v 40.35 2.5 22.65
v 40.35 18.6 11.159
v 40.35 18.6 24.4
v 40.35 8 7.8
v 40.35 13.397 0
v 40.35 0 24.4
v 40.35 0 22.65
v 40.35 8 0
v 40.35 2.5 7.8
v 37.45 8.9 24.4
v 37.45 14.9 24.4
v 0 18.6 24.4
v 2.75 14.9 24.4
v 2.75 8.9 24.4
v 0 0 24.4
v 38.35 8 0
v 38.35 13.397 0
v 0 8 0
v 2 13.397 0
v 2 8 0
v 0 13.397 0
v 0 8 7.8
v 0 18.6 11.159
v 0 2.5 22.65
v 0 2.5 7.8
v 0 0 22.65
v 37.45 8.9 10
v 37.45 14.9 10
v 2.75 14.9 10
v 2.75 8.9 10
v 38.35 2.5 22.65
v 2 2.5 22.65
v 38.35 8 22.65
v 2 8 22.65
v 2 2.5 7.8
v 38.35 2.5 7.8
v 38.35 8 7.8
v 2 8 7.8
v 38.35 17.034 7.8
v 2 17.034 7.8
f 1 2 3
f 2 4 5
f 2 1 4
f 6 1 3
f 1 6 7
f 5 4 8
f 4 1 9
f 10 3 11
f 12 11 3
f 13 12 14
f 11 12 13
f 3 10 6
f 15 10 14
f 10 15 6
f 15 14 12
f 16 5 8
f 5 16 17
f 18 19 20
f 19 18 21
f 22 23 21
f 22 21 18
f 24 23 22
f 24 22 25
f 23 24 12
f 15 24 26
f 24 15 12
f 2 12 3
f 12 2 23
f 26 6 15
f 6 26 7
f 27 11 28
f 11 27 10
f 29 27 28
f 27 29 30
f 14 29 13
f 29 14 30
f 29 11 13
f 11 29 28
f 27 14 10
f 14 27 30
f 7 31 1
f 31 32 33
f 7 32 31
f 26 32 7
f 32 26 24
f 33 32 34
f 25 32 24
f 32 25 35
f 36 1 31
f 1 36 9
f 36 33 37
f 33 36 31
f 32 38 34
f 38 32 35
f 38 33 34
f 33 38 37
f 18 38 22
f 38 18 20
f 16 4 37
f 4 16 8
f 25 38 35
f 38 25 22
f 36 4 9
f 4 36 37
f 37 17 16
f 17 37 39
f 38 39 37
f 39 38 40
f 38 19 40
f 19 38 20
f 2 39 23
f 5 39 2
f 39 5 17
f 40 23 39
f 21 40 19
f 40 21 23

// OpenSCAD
// Big hook depot for playmobile mobile crane 3761

// Playmobil 3761 Big Hook Depot

difference() {
  cube([40.35,18.6,24.4]);
  // hook depot
  translate([2.75,8.9,10])
    cube([34.7,6,14.5]);
  // mount
  cube([40.35,2.5,24.4-1.75]);
  translate([2,2.5,0])
    cube([36.35,5.5,24.4-1.75]);
  // bottom
  cube([40.35,8,7.8]);
  translate([2,0,0])
    cube([36.35,18.6,7.8]);
  translate([0,20.7,-8])
    rotate([65,0,0])
      cube([40.35,50,10]);
}
